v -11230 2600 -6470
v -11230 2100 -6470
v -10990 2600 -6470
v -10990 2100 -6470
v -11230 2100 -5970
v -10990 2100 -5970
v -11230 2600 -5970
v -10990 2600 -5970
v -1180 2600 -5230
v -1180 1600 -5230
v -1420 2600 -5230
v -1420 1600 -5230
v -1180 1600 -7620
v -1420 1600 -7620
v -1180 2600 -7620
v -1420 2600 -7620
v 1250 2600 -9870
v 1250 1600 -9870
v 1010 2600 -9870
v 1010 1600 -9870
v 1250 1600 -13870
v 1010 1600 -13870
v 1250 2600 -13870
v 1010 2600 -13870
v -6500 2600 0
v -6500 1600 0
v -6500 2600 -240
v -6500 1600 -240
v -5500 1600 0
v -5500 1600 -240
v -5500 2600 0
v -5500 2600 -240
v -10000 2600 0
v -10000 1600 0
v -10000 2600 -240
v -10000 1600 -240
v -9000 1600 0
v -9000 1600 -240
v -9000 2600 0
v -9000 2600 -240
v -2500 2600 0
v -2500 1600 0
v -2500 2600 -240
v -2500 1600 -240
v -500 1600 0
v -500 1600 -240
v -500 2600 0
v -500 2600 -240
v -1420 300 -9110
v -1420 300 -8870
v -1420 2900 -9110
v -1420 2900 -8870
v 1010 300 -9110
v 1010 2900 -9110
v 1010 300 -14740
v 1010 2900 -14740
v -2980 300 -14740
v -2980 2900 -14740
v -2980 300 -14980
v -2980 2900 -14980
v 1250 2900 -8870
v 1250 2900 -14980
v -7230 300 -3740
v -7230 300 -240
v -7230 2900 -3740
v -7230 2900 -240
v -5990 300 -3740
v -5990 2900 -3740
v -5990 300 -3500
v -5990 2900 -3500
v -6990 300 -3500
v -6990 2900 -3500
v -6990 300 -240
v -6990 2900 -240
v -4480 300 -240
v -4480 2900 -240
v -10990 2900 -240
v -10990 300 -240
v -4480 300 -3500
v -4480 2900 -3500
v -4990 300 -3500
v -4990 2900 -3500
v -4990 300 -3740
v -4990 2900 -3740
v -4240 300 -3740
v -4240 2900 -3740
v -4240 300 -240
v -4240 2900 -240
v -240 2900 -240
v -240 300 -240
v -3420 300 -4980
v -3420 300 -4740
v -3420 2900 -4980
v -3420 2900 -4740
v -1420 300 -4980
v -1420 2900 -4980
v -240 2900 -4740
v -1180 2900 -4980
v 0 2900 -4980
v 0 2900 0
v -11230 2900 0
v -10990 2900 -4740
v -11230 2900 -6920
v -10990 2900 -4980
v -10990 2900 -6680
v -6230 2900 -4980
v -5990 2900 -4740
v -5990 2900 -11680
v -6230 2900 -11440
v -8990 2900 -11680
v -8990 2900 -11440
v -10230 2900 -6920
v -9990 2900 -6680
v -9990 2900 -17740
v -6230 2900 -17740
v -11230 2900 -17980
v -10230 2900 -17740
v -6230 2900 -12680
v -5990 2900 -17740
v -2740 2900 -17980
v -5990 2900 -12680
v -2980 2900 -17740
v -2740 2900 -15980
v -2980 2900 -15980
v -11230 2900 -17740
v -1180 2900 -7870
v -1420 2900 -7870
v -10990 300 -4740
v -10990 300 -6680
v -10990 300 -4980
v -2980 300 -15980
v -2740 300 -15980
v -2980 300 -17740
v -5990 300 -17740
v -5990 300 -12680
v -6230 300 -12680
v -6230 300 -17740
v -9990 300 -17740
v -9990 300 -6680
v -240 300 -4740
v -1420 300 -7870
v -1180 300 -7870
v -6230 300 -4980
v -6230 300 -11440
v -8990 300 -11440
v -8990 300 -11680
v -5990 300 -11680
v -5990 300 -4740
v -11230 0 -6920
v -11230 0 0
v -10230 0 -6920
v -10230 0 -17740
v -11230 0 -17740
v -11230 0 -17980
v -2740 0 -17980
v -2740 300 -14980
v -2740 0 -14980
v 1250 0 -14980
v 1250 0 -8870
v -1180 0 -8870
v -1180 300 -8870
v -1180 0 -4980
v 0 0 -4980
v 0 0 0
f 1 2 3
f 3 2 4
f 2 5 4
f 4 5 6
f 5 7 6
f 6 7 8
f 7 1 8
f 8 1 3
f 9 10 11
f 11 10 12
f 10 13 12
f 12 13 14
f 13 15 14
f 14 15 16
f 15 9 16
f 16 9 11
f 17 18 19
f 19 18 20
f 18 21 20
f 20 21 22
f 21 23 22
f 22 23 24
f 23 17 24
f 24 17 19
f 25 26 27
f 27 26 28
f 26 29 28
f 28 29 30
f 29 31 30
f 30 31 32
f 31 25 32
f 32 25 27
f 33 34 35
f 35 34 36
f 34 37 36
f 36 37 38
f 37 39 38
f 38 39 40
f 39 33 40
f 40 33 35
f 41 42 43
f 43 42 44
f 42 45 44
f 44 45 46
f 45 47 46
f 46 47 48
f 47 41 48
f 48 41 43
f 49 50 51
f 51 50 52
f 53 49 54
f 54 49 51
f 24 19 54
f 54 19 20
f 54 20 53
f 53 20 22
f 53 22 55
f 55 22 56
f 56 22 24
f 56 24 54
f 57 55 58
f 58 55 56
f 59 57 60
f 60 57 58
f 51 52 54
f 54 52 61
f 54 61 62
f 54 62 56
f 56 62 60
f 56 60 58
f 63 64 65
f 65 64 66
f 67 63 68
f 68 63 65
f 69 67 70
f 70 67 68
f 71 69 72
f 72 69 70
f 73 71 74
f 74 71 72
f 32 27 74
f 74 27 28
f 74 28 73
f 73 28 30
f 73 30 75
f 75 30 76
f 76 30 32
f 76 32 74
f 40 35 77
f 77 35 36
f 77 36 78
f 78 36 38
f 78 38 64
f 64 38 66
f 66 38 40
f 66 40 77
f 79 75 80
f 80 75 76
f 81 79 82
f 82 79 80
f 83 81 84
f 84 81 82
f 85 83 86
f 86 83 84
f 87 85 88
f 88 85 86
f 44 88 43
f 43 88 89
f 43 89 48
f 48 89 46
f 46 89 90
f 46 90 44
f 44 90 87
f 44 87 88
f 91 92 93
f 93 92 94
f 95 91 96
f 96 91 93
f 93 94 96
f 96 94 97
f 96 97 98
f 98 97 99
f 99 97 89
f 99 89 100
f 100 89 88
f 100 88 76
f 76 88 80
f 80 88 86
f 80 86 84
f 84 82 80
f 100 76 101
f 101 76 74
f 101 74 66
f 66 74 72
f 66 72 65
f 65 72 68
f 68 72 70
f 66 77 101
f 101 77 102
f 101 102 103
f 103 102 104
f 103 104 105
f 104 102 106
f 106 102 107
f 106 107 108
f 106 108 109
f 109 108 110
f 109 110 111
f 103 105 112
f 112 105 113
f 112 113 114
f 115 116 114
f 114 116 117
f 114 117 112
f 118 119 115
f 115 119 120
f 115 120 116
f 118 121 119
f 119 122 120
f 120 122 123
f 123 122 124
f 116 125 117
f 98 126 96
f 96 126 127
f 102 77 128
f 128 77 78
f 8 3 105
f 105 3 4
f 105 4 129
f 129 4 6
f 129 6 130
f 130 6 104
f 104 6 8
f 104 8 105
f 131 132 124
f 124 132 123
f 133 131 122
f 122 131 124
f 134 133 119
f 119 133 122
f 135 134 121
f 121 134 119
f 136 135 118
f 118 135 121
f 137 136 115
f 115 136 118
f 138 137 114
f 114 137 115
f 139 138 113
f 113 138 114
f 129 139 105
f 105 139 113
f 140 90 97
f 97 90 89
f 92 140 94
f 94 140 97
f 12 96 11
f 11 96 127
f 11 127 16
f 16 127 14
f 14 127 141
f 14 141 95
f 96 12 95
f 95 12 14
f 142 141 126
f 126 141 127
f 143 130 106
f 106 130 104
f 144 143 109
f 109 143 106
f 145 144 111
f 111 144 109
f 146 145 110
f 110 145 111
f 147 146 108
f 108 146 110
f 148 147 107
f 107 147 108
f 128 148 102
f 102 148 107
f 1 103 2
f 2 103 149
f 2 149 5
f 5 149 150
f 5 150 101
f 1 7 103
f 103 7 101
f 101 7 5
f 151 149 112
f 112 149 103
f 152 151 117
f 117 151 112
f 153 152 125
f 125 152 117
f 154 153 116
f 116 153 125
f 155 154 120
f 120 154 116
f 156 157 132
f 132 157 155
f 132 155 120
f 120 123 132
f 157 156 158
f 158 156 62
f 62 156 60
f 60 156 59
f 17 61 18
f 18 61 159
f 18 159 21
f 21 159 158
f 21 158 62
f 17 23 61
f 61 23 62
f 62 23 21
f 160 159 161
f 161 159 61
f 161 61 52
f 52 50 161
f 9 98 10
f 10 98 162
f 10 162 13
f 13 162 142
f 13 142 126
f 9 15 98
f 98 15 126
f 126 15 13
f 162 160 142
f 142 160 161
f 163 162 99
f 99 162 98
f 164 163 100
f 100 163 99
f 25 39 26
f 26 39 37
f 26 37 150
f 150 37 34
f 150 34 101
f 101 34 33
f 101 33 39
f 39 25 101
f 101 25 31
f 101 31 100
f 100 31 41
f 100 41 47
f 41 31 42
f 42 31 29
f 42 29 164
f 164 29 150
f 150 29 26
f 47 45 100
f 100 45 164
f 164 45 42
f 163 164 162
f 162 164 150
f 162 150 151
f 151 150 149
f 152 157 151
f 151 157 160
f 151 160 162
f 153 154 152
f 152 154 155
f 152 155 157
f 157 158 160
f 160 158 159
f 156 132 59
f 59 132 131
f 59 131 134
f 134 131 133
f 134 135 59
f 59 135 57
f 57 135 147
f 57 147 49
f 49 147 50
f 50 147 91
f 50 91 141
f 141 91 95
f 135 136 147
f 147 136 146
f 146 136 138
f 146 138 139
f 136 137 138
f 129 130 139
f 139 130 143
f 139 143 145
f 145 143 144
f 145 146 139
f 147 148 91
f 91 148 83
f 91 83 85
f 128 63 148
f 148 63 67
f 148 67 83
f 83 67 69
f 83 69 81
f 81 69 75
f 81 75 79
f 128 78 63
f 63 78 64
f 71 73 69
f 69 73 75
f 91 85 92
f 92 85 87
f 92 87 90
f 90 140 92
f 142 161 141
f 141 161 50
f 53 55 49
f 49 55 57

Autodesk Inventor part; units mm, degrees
ref_plane "YZ Plane" through (0, 0, 0) normal (1, 0, 0) x (0, 1, 0)
ref_plane "XZ Plane" through (0, 0, 0) normal (0, 1, 0) x (-1, 0, 0)
ref_plane "XY Plane" through (0, 0, 0) normal (0, 0, 1) x (1, 0, 0)
sketch "Skizze2" plane through (0, 0, 0) normal (0, 1, 0) x (-1, 0, 0)
  line L0 (0, 0) -> (11230, 0)
  line L1 (11230, 0) -> (11230, -6920)
  line L2 (11230, -6920) -> (10230, -6920)
  line L3 (10230, -6920) -> (10230, -17740)
  line L4 (10230, -17740) -> (11230, -17740)
  line L5 (11230, -17740) -> (11230, -17980)
  line L6 (11230, -17980) -> (2740, -17980)
  line L7 (2740, -17980) -> (2740, -14980)
  line L8 (2740, -14980) -> (-1250, -14980)
  line L9 (-1250, -14980) -> (-1250, -8870)
  line L10 (-1250, -8870) -> (1180, -8870)
  line L11 (1180, -8870) -> (1180, -4980)
  line L12 (1180, -4980) -> (0, -4980)
  line L13 (0, -4980) -> (0, 0)
  dimension "d6" = 11230
  dimension "d7" = 6920
  dimension "d8" = 1000
  dimension "d9" = 10820
  dimension "d10" = 240
  dimension "d11" = 8490
  dimension "d12" = 3000
  dimension "d13" = 3990
  dimension "d14" = 6110
  dimension "d15" = 2430
  dimension "d16" = 3890
  dimension "d17" = 1180
extrude "Fundament" add sketch "Skizze2" along normal blind 300
sketch "Skizze3" plane through (0, 300, 0) normal (0, 1, 0) x (1, 0, 0)
  line L0 (-11230, 0) -> (0, 0) projected
  line L1 (0, 0) -> (0, 4980) projected
  line L2 (0, 4980) -> (-1180, 4980) projected
  line L3 (-1180, 4980) -> (-1180, 8870) projected
  line L4 (-1180, 8870) -> (1250, 8870) projected
  line L5 (1250, 8870) -> (1250, 14980) projected
  line L6 (1250, 14980) -> (-2740, 14980) projected
  line L7 (-2740, 14980) -> (-2740, 17980) projected
  line L8 (-2740, 17980) -> (-11230, 17980) projected
  line L9 (-10230, 17740) -> (-10230, 6920) projected
  line L10 (-10230, 6920) -> (-11230, 6920) projected
  line L11 (-11230, 6920) -> (-11230, 0) projected
  line L12 (-11230, 0) -> (-11230, 6920) projected
  line L13 (-11230, 0) -> (-11230, 6920)
  line L14 (-11230, 6920) -> (-10230, 6920)
  line L15 (-10230, 17740) -> (-11230, 17740) projected
  line L16 (-10230, 17740) -> (-11230, 17740)
  line L17 (-11230, 17980) -> (-2740, 17980) projected
  line L18 (-11230, 17740) -> (-11230, 17980)
  line L19 (-11230, 17980) -> (-2740, 17980)
  line L20 (-2740, 17980) -> (-2740, 15980)
  line L21 (1250, 14980) -> (1250, 8870)
  line L22 (-1180, 7870) -> (-1180, 4980)
  line L23 (0, 4980) -> (0, 0)
  line L24 (0, 0) -> (-11230, 0)
  line L25 (-10990, 240) -> (-240, 240)
  line L26 (-240, 240) -> (-240, 4740)
  line L27 (-240, 4740) -> (-1420, 4740)
  line L28 (-1420, 4740) -> (-1420, 7870)
  line L29 (-1420, 7870) -> (-1180, 7870)
  line L30 (-10990, 240) -> (-10990, 6680)
  line L31 (-5990, 6680) -> (-5990, 11680)
  line L32 (-5990, 11680) -> (-8990, 11680)
  line L33 (-8990, 11680) -> (-8990, 11440)
  line L34 (-8990, 11440) -> (-6230, 11440)
  line L35 (-6230, 11440) -> (-6230, 6920)
  line L36 (-9990, 6920) -> (-9990, 17740)
  line L37 (-9990, 17740) -> (-6230, 17740)
  line L38 (-6230, 17740) -> (-6230, 12680)
  line L39 (-6230, 12680) -> (-5990, 12680)
  line L40 (-5990, 12680) -> (-5990, 17740)
  line L41 (-5990, 17740) -> (-2980, 17740)
  line L42 (-2980, 14740) -> (1010, 14740)
  line L43 (1010, 14740) -> (1010, 9110)
  line L44 (1010, 9110) -> (-1420, 9110)
  line L45 (-1420, 9110) -> (-1420, 8870)
  line L46 (-1420, 8870) -> (-952.7911, 8870)
  line L47 (-1420, 4740) -> (-3420, 4740)
  line L48 (-3420, 4740) -> (-3420, 4980)
  line L49 (-3420, 4980) -> (-1420, 4980)
  line L50 (-10990, 4740) -> (-6230, 4740)
  line L51 (-6230, 4740) -> (-5990, 4740)
  line L52 (-5990, 4740) -> (-5990, 6680)
  line L53 (-10990, 4980) -> (-6230, 4980)
  line L54 (-6230, 4980) -> (-6230, 6920)
  line L55 (-6990, 240) -> (-6990, 3500)
  line L56 (-6990, 3500) -> (-5990, 3500)
  line L57 (-5990, 3500) -> (-5990, 3740)
  line L58 (-5990, 3740) -> (-7230, 3740)
  line L59 (-7230, 3740) -> (-7230, 240)
  line L60 (-4480, 240) -> (-4480, 3500)
  line L61 (-4480, 3500) -> (-4990, 3500)
  line L62 (-4990, 3500) -> (-4990, 3740)
  line L63 (-4990, 3740) -> (-4240, 3740)
  line L64 (-4240, 3740) -> (-4240, 240)
  line L65 (-10990, 6680) -> (-9990, 6680)
  line L66 (-9990, 6680) -> (-9990, 6920)
  line L67 (-2740, 14980) -> (-2980, 14980)
  line L68 (-2740, 15980) -> (-2980, 15980)
  line L69 (-2980, 17740) -> (-2980, 15980)
  line L70 (-2980, 14980) -> (-2980, 14740)
  dimension "d20" = 5000
  dimension "d21" = 240
  dimension "d23" = 240
  dimension "d24" = 240
  dimension "d25" = 240
  dimension "d26" = 240
  dimension "d27" = 1000
  dimension "d28" = 240
  dimension "d29" = 240
  dimension "d30" = 240
  dimension "d31" = 240
  dimension "d33" = 240
  dimension "d34" = 240
  dimension "d35" = 240
  dimension "d36" = 240
  dimension "d37" = 240
  dimension "d38" = 240
  dimension "d39" = 1000
  dimension "d40" = 1000
  dimension "d41" = 5000
  dimension "d54" = 1000
  dimension "d55" = 2000
  dimension "d56" = 240
  dimension "d57" = 240
  dimension "d58" = 240
  dimension "d59" = 240
  dimension "d60" = 3760
  dimension "d61" = 2510
  dimension "d62" = 1000
  dimension "d63" = 1000
  dimension "d64" = 240
  dimension "d65" = 240
  dimension "d66" = 90
  dimension "d67" = 2300
  dimension "d68" = 10000
  dimension "d69" = 2202.7911
  dimension "d70" = 7480
  dimension "d107" = 240
  dimension "d108" = 1000
  dimension "d109" = 240
extrude "Wände" add sketch "Skizze3" along normal blind 2600 contours L11 L10 L9 L15 L18 L8 L7 L68 L69 L41 L40 L39 L38 L37 L36 L66 L65 L30 L25 L26 L27 L28 L29 L3 L2 L1 L0 | L46 L45 L44 L43 L42 L70 L67 L6 L5 L4 | L28 L47 L48 L49 | L25 L60 L61 L62 L63 L64 | L25 L59 L58 L57 L56 L55 | L30 L53 L54 L35 L34 L33 L32 L31 L52 L51 L50
sketch "Skizze6" plane through (-11230, 0, 0) normal (0, 0, 1) x (1, 0, 0)
  line L0 (11230, 0) -> (11230, 2900) projected
  line L1 (0, 2900) -> (11230, 2900) projected
  line L2 (1230, 2600) -> (2230, 2600)
  line L3 (2230, 2600) -> (2230, 1600)
  line L4 (2230, 1600) -> (1230, 1600)
  line L5 (1230, 1600) -> (1230, 2600)
  line L6 (4730, 2600) -> (5730, 2600)
  line L7 (5730, 2600) -> (5730, 1600)
  line L8 (5730, 1600) -> (4730, 1600)
  line L9 (4730, 1600) -> (4730, 2600)
  line L10 (8730, 2600) -> (10730, 2600)
  line L11 (10730, 2600) -> (10730, 1600)
  line L12 (10730, 1600) -> (8730, 1600)
  line L13 (8730, 1600) -> (8730, 2600)
  dimension "d75" = 1000
  dimension "d76" = 1000
  dimension "d77" = 2500
  dimension "d78" = 1000
  dimension "d79" = 2000
  dimension "d80" = 3000
  dimension "d81" = 300
  dimension "d84" = 500
  dimension "d99" = 300
  dimension "d100" = 1000
extrude "Fenster_West" cut sketch "Skizze6" against normal blind 240
sketch "Skizze8" plane through (1250, 0, -8870) normal (1, 0, 0) x (0, 0, -1)
  line L0 (0, 2900) -> (6110, 2900) projected
  line L1 (0, 0) -> (0, 2900) projected
  line L2 (1000, 2600) -> (5000, 2600)
  line L3 (5000, 2600) -> (5000, 1600)
  line L4 (5000, 1600) -> (1000, 1600)
  line L5 (1000, 1600) -> (1000, 2600)
  point P0 (-8870, 0)
  point P1 (0, 300)
  dimension "d87" = 300
  dimension "d88" = 4000
  dimension "d89" = 1000
  dimension "d90" = 1000
extrude "Fenster_Süden_1" cut sketch "Skizze8" against normal blind 240
sketch "Skizze10" plane through (-1180, 0, -4980) normal (1, 0, 0) x (0, 0, -1)
  line L0 (2890, 300) -> (2890, 2900) projected
  line L1 (0, 2900) -> (2890, 2900) projected
  line L2 (0, 0) -> (0, 2900) projected
  line L3 (250, 2600) -> (2640, 2600)
  line L4 (2640, 2600) -> (2640, 1600)
  line L5 (2640, 1600) -> (250, 1600)
  line L6 (250, 1600) -> (250, 2600)
  point P0 (-4980, 0)
  dimension "d101" = 300
  dimension "d102" = 250
  dimension "d103" = 250
  dimension "d104" = 1000
extrude "Fenster_Süden_2" cut sketch "Skizze10" against normal blind 240
sketch "Skizze9" plane through (-11230, 0, -6920) normal (-1, 0, 0) x (0, 0, 1)
  line L0 (0, 2900) -> (6920, 2900) projected
  line L1 (0, 0) -> (0, 2900) projected
  line L2 (450, 2600) -> (950, 2600)
  line L3 (950, 2600) -> (950, 2100)
  line L4 (950, 2100) -> (450, 2100)
  line L5 (450, 2100) -> (450, 2600)
  dimension "d93" = 300
  dimension "d94" = 450
  dimension "d95" = 500
  dimension "d96" = 500
extrude "Fenster_Nord" cut sketch "Skizze9" against normal blind 240
properties part number "Haus"
